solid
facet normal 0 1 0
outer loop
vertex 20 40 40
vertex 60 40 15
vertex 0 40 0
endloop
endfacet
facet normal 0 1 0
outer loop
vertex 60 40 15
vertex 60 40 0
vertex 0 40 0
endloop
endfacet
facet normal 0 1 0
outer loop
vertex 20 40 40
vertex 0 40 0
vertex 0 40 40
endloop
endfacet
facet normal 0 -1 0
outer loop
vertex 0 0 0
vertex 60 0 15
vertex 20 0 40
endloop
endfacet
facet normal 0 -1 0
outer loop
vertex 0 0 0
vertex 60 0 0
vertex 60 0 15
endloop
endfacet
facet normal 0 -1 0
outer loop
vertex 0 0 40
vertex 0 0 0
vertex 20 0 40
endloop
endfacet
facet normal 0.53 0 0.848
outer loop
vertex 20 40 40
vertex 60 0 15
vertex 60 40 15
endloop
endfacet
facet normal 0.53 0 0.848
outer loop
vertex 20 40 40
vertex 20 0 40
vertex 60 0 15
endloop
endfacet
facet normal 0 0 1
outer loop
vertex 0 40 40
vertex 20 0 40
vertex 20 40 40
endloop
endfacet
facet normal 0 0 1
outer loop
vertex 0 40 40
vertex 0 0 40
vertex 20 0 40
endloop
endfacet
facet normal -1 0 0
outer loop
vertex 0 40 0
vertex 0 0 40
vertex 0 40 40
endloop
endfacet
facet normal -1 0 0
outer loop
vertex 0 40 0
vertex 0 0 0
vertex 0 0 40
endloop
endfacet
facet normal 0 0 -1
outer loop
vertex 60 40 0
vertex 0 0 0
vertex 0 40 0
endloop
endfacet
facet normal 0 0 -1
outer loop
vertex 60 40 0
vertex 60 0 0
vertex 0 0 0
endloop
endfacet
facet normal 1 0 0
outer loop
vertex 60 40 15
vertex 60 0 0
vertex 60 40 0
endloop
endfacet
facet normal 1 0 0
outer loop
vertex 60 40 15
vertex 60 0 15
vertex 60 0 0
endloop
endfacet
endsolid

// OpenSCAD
// 斜坡塊（ramp）— 由 ortho_lib_work/objects.py 產生，請改 objects.py 後重建
// 深 40；正視輪廓左邊高 40、平頂寬 20，再從 x=20 斜下到右端高 15。
union() {
    multmatrix([[1,0,0,0],[0,0,-1,40],[0,1,0,0],[0,0,0,1]]) linear_extrude(height=40) polygon([[0,0],[60,0],[60,15],[20,40],[0,40]]);
}
